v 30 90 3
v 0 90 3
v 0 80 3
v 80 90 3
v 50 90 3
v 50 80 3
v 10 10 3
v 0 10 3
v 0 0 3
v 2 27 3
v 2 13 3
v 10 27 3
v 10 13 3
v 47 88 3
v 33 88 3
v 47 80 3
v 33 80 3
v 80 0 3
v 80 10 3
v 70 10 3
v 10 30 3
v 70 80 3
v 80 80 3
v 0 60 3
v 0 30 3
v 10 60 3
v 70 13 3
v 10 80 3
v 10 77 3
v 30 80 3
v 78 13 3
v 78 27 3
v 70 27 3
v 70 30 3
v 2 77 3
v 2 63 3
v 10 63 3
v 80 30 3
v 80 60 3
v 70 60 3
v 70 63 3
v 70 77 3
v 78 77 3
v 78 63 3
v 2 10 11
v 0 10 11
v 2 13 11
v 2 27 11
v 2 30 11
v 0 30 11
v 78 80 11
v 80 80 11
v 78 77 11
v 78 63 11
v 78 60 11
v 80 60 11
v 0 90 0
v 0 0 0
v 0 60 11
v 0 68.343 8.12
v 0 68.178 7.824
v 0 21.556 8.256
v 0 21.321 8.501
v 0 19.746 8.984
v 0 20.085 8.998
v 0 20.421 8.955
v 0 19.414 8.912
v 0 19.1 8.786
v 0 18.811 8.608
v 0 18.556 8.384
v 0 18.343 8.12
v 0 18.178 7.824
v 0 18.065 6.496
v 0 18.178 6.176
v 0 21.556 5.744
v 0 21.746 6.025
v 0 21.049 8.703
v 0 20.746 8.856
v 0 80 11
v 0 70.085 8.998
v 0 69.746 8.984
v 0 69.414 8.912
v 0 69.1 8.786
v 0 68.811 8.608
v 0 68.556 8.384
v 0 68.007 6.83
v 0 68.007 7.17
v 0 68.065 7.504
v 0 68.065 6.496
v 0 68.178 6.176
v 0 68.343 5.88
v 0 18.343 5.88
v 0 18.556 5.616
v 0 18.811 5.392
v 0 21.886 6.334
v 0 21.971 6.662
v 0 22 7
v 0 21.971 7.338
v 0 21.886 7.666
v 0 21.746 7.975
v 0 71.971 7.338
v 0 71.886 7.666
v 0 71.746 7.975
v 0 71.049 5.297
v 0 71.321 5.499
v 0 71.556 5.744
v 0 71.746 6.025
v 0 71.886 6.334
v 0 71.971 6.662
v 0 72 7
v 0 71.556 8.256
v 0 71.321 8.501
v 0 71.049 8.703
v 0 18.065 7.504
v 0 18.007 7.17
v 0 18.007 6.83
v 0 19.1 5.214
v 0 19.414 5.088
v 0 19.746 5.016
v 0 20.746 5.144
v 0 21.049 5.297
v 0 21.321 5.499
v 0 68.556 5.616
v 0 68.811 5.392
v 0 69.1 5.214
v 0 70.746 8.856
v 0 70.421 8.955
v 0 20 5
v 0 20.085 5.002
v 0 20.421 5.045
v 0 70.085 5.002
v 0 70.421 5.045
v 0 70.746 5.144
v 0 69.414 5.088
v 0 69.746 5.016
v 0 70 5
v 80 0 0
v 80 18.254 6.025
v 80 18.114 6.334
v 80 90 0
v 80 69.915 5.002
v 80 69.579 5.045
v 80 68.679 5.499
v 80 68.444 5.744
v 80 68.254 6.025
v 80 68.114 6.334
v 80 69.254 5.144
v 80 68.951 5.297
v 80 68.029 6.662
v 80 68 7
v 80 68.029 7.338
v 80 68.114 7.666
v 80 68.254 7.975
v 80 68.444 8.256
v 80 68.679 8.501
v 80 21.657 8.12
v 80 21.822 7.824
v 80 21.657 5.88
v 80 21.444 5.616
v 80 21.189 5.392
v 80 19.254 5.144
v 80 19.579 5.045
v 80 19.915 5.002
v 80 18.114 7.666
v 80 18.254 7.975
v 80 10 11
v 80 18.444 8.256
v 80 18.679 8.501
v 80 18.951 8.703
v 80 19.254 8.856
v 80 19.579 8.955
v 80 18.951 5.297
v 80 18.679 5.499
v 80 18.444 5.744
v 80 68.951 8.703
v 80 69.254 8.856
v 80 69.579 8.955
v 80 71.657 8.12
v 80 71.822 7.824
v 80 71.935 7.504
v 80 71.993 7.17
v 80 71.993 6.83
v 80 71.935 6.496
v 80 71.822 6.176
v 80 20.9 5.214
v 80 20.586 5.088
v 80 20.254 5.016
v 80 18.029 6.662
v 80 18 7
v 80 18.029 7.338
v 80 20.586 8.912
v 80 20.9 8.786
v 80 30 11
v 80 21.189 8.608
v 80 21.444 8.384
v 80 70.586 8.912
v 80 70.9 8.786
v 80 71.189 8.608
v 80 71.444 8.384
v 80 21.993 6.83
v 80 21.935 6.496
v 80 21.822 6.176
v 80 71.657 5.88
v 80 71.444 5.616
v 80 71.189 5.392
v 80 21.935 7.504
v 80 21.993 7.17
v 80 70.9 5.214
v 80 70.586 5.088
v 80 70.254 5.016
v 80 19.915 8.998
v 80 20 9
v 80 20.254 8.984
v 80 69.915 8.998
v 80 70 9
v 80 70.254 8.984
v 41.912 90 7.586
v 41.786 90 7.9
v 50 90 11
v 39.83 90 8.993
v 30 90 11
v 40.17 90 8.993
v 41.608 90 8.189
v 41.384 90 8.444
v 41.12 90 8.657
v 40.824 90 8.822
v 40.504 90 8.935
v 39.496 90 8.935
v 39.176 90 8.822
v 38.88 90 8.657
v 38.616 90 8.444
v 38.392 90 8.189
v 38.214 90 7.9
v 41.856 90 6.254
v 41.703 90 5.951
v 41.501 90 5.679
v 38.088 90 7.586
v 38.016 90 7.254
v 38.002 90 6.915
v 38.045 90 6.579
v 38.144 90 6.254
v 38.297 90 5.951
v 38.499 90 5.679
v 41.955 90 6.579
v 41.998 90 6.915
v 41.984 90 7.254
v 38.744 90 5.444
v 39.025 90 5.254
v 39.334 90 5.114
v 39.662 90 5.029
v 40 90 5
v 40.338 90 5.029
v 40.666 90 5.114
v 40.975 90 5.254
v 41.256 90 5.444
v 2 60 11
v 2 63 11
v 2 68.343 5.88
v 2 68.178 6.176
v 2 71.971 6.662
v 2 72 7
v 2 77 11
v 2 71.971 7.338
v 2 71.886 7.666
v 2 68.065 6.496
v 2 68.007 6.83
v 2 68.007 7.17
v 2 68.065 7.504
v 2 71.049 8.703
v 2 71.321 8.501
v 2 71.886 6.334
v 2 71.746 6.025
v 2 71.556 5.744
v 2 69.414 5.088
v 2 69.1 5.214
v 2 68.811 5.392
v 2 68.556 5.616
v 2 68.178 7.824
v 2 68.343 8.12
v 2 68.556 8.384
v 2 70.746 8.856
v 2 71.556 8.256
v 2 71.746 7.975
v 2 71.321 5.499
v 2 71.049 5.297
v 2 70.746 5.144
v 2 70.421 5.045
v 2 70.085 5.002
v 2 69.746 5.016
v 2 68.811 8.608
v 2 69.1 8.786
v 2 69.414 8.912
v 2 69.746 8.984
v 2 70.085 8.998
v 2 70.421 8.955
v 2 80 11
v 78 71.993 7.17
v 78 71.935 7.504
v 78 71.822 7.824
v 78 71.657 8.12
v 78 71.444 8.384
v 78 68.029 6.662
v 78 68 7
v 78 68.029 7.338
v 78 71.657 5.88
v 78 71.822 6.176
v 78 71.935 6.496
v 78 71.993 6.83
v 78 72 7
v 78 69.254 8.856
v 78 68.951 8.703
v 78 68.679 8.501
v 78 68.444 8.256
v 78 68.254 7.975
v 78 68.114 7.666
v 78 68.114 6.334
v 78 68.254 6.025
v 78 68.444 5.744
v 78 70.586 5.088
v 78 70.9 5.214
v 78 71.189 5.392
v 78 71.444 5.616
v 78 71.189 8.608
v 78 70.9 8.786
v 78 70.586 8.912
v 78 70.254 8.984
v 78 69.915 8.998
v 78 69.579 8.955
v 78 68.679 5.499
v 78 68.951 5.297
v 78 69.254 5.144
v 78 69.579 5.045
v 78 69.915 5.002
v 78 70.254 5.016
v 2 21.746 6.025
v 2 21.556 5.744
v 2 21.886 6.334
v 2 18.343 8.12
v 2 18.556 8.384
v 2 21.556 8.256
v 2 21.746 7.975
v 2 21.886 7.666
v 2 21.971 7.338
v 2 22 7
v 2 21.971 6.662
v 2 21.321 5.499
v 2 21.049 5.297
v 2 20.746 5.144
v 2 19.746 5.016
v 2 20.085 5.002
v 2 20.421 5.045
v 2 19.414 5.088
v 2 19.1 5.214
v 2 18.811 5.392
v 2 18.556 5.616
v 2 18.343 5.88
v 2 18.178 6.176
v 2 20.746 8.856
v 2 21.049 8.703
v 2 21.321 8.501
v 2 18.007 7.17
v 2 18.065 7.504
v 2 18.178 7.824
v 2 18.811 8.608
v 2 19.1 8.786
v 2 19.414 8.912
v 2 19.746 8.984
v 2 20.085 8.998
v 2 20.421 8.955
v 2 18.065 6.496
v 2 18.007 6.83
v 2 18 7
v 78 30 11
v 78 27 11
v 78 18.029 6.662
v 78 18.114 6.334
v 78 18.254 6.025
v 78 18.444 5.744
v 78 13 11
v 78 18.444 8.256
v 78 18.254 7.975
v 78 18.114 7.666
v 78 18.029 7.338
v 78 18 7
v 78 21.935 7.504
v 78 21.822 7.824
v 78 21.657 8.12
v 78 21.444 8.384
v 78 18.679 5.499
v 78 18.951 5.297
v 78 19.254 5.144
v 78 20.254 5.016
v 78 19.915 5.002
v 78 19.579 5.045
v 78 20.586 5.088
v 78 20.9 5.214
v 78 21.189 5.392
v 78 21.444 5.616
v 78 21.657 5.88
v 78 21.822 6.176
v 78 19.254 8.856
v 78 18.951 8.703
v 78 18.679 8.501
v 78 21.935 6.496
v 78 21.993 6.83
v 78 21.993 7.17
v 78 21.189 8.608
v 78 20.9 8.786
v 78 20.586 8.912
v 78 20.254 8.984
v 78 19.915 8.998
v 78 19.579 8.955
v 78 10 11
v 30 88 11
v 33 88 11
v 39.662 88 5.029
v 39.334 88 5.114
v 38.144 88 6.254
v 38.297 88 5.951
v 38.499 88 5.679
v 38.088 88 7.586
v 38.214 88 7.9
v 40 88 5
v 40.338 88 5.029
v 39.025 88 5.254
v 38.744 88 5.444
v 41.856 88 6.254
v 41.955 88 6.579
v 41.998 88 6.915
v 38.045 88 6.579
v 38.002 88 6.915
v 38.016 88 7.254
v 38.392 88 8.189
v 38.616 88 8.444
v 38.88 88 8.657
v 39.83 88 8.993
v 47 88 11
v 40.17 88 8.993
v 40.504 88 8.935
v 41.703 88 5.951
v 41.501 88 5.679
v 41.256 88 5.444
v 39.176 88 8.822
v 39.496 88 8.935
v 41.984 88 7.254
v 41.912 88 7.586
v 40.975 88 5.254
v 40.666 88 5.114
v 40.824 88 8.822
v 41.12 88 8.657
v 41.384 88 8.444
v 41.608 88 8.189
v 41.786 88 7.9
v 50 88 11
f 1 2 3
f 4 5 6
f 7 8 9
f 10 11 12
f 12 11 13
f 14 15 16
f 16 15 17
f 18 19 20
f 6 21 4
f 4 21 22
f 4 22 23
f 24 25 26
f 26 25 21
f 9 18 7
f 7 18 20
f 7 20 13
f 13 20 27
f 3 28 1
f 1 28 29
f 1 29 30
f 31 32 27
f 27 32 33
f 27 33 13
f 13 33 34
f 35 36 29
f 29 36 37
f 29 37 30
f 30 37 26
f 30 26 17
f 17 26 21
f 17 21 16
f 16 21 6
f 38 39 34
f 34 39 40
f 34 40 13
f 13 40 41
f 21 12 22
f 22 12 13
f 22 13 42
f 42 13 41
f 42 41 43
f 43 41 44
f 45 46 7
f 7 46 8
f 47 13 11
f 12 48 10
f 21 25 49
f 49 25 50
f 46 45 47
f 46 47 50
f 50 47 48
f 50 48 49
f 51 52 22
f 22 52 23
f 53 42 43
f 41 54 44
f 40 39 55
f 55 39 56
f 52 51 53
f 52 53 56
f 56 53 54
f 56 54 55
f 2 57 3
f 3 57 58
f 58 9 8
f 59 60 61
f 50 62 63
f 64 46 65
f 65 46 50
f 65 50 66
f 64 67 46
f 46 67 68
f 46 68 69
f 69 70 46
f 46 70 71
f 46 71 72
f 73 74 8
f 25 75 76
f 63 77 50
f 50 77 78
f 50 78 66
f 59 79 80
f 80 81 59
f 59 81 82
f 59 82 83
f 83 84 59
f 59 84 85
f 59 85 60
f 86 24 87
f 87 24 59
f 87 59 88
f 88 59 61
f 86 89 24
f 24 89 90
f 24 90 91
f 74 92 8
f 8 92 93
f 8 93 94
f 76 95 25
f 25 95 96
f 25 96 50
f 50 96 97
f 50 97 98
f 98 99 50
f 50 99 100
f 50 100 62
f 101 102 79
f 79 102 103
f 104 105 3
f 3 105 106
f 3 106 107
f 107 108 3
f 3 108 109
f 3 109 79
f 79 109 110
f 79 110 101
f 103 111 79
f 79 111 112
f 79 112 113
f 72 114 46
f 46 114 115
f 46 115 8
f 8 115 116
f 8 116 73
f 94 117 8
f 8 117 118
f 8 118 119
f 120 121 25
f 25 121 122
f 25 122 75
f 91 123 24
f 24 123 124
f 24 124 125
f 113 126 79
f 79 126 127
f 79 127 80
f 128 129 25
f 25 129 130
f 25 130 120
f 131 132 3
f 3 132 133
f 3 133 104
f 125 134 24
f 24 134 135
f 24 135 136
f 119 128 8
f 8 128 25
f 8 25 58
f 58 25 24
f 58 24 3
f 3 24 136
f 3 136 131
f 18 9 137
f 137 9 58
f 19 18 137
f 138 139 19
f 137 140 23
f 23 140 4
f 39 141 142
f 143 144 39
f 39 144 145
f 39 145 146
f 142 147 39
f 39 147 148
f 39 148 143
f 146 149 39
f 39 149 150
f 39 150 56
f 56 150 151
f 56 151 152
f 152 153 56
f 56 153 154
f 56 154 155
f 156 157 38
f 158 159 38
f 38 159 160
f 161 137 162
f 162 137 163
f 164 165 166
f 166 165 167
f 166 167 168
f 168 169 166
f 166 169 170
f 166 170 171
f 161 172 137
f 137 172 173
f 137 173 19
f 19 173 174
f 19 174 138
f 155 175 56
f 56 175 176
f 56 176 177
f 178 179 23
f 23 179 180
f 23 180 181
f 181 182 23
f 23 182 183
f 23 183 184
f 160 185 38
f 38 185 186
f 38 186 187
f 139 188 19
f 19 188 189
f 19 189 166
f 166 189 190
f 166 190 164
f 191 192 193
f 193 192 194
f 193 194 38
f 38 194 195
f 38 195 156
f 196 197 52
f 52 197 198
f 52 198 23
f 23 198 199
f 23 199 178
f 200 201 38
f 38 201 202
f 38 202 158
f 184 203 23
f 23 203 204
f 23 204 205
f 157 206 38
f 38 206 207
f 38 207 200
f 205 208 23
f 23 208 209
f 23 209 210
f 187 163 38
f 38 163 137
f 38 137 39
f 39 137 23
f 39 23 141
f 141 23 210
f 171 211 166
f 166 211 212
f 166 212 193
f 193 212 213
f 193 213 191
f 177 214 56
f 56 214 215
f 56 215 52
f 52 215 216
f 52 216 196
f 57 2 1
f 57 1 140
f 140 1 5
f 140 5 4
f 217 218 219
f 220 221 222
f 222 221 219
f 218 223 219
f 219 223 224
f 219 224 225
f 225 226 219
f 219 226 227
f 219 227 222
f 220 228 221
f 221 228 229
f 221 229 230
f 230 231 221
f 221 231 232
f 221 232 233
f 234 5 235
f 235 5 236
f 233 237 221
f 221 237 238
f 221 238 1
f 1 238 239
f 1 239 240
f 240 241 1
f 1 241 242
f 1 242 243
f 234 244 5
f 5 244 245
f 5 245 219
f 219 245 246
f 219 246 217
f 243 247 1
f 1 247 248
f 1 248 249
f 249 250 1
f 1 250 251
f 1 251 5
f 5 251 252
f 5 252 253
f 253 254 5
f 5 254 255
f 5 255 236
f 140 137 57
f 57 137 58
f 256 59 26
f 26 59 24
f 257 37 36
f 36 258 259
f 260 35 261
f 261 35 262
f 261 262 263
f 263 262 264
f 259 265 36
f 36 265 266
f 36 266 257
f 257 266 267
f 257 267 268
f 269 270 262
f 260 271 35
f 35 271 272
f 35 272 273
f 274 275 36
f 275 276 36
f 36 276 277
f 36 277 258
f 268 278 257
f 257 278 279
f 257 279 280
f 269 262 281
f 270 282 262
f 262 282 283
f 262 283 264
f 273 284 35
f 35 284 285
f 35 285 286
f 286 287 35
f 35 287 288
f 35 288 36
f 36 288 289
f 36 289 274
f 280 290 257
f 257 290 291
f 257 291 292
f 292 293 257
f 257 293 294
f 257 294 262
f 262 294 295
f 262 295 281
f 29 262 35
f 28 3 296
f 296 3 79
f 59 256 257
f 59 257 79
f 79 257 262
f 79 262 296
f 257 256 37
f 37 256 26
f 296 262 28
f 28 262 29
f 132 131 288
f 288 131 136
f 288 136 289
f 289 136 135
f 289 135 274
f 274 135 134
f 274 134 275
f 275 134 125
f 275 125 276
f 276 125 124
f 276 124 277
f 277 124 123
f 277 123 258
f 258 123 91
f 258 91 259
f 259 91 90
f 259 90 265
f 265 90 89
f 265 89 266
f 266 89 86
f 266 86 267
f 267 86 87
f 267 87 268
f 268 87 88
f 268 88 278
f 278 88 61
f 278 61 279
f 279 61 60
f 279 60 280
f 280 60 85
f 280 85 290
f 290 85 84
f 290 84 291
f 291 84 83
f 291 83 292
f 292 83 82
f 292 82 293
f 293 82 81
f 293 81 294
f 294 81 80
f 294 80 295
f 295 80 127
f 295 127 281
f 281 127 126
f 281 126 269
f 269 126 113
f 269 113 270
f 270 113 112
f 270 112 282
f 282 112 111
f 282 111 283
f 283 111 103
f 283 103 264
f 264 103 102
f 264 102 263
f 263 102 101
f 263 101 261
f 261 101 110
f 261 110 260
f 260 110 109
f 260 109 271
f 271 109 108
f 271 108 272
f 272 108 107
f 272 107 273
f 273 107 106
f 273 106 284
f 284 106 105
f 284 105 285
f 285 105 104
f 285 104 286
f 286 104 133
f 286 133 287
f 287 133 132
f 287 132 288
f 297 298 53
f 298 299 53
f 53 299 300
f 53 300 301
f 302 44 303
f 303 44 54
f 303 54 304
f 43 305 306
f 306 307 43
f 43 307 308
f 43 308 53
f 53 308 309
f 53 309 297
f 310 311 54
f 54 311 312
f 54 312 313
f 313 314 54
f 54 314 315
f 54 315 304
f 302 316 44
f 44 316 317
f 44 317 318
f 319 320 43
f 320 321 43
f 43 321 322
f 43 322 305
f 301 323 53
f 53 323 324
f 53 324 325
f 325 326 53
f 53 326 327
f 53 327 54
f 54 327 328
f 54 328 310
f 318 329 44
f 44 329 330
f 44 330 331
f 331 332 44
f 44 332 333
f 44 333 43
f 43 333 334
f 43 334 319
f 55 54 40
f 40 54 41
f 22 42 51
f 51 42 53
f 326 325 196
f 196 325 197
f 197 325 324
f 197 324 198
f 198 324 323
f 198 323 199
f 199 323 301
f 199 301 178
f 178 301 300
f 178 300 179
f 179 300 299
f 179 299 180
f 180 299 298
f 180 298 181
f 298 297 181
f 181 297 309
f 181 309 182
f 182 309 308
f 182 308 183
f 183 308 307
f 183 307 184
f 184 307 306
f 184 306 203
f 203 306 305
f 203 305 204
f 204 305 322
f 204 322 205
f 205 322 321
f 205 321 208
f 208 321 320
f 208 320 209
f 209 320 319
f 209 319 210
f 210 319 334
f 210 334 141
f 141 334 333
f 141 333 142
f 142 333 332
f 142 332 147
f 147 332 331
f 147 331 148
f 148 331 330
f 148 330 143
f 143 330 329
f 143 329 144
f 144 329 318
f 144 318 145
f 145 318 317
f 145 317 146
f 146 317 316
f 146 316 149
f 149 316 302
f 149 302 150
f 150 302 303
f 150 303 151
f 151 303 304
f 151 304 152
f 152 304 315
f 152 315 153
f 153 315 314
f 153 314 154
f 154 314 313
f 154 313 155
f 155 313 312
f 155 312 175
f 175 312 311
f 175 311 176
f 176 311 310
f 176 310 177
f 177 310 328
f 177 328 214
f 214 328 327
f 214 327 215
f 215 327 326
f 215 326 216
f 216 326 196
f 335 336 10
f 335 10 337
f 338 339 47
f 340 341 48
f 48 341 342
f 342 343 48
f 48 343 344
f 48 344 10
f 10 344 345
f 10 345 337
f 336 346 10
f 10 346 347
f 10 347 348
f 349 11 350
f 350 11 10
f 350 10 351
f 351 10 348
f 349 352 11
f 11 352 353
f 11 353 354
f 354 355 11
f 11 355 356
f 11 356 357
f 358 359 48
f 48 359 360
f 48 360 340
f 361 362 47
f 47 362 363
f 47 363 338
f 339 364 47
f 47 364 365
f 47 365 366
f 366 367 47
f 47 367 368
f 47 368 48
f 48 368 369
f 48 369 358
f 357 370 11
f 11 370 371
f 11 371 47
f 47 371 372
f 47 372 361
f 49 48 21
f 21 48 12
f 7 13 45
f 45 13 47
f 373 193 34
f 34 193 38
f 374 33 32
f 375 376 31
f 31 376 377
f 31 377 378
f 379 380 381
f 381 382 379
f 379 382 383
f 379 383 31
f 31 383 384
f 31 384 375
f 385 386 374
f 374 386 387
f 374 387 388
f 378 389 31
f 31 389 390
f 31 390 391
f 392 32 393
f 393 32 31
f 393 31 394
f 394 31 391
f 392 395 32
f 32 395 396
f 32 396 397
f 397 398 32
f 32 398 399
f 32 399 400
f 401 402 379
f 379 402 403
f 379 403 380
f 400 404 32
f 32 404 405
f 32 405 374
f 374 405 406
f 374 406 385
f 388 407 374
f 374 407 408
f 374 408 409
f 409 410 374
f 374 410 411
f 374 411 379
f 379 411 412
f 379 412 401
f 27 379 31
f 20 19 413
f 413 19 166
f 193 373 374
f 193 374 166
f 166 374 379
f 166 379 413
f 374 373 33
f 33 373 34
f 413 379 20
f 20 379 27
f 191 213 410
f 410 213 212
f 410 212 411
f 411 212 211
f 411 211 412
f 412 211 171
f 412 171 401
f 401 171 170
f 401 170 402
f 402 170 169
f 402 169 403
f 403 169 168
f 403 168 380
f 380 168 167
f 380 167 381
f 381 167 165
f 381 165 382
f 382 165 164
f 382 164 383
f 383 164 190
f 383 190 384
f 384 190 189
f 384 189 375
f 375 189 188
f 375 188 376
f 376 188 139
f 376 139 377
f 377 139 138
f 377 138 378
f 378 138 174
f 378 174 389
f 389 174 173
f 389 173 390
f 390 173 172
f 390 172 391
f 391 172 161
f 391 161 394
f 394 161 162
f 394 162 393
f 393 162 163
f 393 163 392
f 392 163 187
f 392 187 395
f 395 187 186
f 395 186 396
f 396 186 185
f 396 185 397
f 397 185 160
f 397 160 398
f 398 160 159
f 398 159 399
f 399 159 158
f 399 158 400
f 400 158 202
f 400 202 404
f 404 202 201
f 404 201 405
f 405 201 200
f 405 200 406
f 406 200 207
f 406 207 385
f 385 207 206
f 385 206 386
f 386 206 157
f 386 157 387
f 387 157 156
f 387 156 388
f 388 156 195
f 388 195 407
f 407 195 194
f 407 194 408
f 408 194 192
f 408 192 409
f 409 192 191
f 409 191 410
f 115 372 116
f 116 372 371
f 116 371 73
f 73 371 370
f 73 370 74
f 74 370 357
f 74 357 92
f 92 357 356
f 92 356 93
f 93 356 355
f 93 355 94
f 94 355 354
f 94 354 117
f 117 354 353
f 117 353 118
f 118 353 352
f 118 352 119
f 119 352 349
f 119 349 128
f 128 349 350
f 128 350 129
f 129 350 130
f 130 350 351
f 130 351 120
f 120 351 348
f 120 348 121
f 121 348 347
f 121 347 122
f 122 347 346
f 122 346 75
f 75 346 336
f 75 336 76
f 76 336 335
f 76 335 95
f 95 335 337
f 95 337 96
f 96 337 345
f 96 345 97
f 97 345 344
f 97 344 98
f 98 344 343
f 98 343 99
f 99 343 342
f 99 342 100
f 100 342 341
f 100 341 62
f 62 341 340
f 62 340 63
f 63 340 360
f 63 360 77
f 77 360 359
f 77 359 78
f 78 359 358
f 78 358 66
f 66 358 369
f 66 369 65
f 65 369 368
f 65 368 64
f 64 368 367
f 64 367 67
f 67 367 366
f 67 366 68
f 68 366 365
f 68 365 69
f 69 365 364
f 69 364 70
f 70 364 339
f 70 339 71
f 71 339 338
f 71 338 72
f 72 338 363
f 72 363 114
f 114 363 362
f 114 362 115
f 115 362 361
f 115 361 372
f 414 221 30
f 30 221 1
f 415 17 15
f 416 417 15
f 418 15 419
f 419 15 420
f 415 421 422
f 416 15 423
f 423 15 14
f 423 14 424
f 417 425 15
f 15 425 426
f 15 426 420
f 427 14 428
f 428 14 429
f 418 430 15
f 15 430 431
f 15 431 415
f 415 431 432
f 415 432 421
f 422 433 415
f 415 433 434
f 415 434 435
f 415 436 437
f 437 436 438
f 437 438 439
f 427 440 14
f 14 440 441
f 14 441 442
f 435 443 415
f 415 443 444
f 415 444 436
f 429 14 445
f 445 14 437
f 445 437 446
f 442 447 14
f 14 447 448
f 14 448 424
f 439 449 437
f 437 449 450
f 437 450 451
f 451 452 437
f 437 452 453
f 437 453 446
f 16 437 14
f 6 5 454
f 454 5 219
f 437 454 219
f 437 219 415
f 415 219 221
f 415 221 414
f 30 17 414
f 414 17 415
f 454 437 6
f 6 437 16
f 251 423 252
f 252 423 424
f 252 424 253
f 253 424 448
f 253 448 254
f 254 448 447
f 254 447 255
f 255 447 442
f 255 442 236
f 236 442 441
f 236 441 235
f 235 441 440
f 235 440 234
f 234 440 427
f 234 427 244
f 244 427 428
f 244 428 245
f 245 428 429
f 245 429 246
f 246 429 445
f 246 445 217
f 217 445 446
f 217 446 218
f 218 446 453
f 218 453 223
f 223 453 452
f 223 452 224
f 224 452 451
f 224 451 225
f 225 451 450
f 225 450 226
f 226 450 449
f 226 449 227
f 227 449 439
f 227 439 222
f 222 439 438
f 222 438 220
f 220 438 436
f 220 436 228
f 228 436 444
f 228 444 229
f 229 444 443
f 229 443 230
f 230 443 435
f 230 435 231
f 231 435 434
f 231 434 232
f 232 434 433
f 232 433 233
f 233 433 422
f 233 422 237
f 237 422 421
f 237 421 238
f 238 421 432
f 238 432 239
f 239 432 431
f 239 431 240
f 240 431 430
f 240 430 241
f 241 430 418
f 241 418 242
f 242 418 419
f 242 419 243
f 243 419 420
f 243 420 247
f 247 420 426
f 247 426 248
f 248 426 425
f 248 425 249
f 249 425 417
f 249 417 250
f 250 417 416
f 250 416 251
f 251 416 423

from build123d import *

# Parameters (mm, degrees)
SKETCH1_W               = 80
SKETCH1_H               = 90
BOSS_EXTRUDE1_DEPTH     = 3
BOSS_EXTRUDE2_DEPTH     = 8
CUT_EXTRUDE1_DEPTH      = 114.670576668
SKETCH6_R               = 2
CUT_EXTRUDE3_DEPTH      = 25
MIRROR5_COPY_1_DEPTH    = 8
MIRROR5_COPY_2_DEPTH    = 114.670576668
MIRROR5_COPY_3_SKETCH_R = 2
MIRROR5_COPY_3_DEPTH    = 25
BOSS_EXTRUDE3_DEPTH     = 8
CUT_EXTRUDE2_DEPTH      = 25
SKETCH7_R               = 2
CUT_EXTRUDE4_DEPTH      = 25


with BuildPart() as part:
    # Sketch1 → Boss-Extrude1 (new body)
    with BuildSketch(Plane.XY):
        with Locations((40, 45)):
            Rectangle(SKETCH1_W, SKETCH1_H)
    extrude(amount=BOSS_EXTRUDE1_DEPTH)

    # Sketch2 → Boss-Extrude2 (add)
    with BuildSketch(Plane.XY.offset(3)):
        Polygon((0, 80), (10, 80), (10, 77), (2, 77), (2, 63), (10, 63), (10, 60), (0, 60), align=None)
    boss_extrude2 = extrude(amount=BOSS_EXTRUDE2_DEPTH)

    # Sketch3 → Cut-Extrude1 (cut, through all)
    with BuildSketch(Plane(origin=(0, 80, 0), x_dir=(1, 0, 0), z_dir=(0, 1, 0))):
        Polygon((10, -3), (2, -11), (10, -11), align=None)
    cut_extrude1 = extrude(amount=-CUT_EXTRUDE1_DEPTH, mode=Mode.SUBTRACT)

    # Sketch6 → Cut-Extrude3 (cut)
    with BuildSketch(Plane(origin=(2, 0, 0), x_dir=(0, 0, -1), z_dir=(1, 0, 0))):
        with Locations(Location((-7, 70, 0), (0, 0, 90))):
            Circle(SKETCH6_R)
    cut_extrude3 = extrude(amount=-CUT_EXTRUDE3_DEPTH, mode=Mode.SUBTRACT)

    # Mirror4: Boss-Extrude2, Cut-Extrude1, Cut-Extrude3 across plane
    add(boss_extrude2.mirror(Plane(origin=(40, 0, 0), x_dir=(0, 0, 1), z_dir=(1, 0, 0))))
    add(cut_extrude1.mirror(Plane(origin=(40, 0, 0), x_dir=(0, 0, 1), z_dir=(1, 0, 0))), mode=Mode.SUBTRACT)
    add(cut_extrude3.mirror(Plane(origin=(40, 0, 0), x_dir=(0, 0, 1), z_dir=(1, 0, 0))), mode=Mode.SUBTRACT)

    # Mirror5: Boss-Extrude2, Cut-Extrude1, Cut-Extrude3 across plane
    add(boss_extrude2.mirror(Plane(origin=(0, 45, 0), x_dir=(0, 0, 1), z_dir=(0, -1, 0))))
    add(cut_extrude1.mirror(Plane(origin=(0, 45, 0), x_dir=(0, 0, 1), z_dir=(0, -1, 0))), mode=Mode.SUBTRACT)
    add(cut_extrude3.mirror(Plane(origin=(0, 45, 0), x_dir=(0, 0, 1), z_dir=(0, -1, 0))), mode=Mode.SUBTRACT)

    # Mirror5 copy 1 sketch → Mirror5 copy 1 (add)
    with BuildSketch(Plane(origin=(80, 90, 3), x_dir=(-1, 0, 0), z_dir=(0, 0, 1))):
        Polygon((0, 80), (10, 80), (10, 77), (2, 77), (2, 63), (10, 63), (10, 60), (0, 60), align=None)
    extrude(amount=MIRROR5_COPY_1_DEPTH)

    # Mirror5 copy 2 sketch → Mirror5 copy 2 (cut, through all)
    with BuildSketch(Plane(origin=(80, 10, 0), x_dir=(-1, 0, 0), z_dir=(0, -1, 0))):
        Polygon((10, -3), (2, -11), (10, -11), align=None)
    extrude(amount=-MIRROR5_COPY_2_DEPTH, mode=Mode.SUBTRACT)

    # Mirror5 copy 3 sketch → Mirror5 copy 3 (cut)
    with BuildSketch(Plane(origin=(78, 90, 0), x_dir=(0, 0, -1), z_dir=(-1, 0, 0))):
        with Locations(Location((-7, 70, 0), (0, 0, 90))):
            Circle(MIRROR5_COPY_3_SKETCH_R)
    extrude(amount=-MIRROR5_COPY_3_DEPTH, mode=Mode.SUBTRACT)

    # Sketch4 → Boss-Extrude3 (add)
    with BuildSketch(Plane.XY.offset(3)):
        Polygon((30, 90), (50, 90), (50, 80), (47, 80), (47, 88), (33, 88), (33, 80), (30, 80), align=None)
    extrude(amount=BOSS_EXTRUDE3_DEPTH)

    # Sketch5 → Cut-Extrude2 (cut)
    with BuildSketch(Plane.ZY.offset(-30)):
        Polygon((3, 80), (11, 88), (11, 80), align=None)
    extrude(amount=-CUT_EXTRUDE2_DEPTH, mode=Mode.SUBTRACT)

    # Sketch7 → Cut-Extrude4 (cut)
    with BuildSketch(Plane.XZ.offset(-88)):
        with Locations(Location((40, 7, 0), (0, 0, 270))):
            Circle(SKETCH7_R)
    extrude(amount=-CUT_EXTRUDE4_DEPTH, mode=Mode.SUBTRACT)


solid = part.part
